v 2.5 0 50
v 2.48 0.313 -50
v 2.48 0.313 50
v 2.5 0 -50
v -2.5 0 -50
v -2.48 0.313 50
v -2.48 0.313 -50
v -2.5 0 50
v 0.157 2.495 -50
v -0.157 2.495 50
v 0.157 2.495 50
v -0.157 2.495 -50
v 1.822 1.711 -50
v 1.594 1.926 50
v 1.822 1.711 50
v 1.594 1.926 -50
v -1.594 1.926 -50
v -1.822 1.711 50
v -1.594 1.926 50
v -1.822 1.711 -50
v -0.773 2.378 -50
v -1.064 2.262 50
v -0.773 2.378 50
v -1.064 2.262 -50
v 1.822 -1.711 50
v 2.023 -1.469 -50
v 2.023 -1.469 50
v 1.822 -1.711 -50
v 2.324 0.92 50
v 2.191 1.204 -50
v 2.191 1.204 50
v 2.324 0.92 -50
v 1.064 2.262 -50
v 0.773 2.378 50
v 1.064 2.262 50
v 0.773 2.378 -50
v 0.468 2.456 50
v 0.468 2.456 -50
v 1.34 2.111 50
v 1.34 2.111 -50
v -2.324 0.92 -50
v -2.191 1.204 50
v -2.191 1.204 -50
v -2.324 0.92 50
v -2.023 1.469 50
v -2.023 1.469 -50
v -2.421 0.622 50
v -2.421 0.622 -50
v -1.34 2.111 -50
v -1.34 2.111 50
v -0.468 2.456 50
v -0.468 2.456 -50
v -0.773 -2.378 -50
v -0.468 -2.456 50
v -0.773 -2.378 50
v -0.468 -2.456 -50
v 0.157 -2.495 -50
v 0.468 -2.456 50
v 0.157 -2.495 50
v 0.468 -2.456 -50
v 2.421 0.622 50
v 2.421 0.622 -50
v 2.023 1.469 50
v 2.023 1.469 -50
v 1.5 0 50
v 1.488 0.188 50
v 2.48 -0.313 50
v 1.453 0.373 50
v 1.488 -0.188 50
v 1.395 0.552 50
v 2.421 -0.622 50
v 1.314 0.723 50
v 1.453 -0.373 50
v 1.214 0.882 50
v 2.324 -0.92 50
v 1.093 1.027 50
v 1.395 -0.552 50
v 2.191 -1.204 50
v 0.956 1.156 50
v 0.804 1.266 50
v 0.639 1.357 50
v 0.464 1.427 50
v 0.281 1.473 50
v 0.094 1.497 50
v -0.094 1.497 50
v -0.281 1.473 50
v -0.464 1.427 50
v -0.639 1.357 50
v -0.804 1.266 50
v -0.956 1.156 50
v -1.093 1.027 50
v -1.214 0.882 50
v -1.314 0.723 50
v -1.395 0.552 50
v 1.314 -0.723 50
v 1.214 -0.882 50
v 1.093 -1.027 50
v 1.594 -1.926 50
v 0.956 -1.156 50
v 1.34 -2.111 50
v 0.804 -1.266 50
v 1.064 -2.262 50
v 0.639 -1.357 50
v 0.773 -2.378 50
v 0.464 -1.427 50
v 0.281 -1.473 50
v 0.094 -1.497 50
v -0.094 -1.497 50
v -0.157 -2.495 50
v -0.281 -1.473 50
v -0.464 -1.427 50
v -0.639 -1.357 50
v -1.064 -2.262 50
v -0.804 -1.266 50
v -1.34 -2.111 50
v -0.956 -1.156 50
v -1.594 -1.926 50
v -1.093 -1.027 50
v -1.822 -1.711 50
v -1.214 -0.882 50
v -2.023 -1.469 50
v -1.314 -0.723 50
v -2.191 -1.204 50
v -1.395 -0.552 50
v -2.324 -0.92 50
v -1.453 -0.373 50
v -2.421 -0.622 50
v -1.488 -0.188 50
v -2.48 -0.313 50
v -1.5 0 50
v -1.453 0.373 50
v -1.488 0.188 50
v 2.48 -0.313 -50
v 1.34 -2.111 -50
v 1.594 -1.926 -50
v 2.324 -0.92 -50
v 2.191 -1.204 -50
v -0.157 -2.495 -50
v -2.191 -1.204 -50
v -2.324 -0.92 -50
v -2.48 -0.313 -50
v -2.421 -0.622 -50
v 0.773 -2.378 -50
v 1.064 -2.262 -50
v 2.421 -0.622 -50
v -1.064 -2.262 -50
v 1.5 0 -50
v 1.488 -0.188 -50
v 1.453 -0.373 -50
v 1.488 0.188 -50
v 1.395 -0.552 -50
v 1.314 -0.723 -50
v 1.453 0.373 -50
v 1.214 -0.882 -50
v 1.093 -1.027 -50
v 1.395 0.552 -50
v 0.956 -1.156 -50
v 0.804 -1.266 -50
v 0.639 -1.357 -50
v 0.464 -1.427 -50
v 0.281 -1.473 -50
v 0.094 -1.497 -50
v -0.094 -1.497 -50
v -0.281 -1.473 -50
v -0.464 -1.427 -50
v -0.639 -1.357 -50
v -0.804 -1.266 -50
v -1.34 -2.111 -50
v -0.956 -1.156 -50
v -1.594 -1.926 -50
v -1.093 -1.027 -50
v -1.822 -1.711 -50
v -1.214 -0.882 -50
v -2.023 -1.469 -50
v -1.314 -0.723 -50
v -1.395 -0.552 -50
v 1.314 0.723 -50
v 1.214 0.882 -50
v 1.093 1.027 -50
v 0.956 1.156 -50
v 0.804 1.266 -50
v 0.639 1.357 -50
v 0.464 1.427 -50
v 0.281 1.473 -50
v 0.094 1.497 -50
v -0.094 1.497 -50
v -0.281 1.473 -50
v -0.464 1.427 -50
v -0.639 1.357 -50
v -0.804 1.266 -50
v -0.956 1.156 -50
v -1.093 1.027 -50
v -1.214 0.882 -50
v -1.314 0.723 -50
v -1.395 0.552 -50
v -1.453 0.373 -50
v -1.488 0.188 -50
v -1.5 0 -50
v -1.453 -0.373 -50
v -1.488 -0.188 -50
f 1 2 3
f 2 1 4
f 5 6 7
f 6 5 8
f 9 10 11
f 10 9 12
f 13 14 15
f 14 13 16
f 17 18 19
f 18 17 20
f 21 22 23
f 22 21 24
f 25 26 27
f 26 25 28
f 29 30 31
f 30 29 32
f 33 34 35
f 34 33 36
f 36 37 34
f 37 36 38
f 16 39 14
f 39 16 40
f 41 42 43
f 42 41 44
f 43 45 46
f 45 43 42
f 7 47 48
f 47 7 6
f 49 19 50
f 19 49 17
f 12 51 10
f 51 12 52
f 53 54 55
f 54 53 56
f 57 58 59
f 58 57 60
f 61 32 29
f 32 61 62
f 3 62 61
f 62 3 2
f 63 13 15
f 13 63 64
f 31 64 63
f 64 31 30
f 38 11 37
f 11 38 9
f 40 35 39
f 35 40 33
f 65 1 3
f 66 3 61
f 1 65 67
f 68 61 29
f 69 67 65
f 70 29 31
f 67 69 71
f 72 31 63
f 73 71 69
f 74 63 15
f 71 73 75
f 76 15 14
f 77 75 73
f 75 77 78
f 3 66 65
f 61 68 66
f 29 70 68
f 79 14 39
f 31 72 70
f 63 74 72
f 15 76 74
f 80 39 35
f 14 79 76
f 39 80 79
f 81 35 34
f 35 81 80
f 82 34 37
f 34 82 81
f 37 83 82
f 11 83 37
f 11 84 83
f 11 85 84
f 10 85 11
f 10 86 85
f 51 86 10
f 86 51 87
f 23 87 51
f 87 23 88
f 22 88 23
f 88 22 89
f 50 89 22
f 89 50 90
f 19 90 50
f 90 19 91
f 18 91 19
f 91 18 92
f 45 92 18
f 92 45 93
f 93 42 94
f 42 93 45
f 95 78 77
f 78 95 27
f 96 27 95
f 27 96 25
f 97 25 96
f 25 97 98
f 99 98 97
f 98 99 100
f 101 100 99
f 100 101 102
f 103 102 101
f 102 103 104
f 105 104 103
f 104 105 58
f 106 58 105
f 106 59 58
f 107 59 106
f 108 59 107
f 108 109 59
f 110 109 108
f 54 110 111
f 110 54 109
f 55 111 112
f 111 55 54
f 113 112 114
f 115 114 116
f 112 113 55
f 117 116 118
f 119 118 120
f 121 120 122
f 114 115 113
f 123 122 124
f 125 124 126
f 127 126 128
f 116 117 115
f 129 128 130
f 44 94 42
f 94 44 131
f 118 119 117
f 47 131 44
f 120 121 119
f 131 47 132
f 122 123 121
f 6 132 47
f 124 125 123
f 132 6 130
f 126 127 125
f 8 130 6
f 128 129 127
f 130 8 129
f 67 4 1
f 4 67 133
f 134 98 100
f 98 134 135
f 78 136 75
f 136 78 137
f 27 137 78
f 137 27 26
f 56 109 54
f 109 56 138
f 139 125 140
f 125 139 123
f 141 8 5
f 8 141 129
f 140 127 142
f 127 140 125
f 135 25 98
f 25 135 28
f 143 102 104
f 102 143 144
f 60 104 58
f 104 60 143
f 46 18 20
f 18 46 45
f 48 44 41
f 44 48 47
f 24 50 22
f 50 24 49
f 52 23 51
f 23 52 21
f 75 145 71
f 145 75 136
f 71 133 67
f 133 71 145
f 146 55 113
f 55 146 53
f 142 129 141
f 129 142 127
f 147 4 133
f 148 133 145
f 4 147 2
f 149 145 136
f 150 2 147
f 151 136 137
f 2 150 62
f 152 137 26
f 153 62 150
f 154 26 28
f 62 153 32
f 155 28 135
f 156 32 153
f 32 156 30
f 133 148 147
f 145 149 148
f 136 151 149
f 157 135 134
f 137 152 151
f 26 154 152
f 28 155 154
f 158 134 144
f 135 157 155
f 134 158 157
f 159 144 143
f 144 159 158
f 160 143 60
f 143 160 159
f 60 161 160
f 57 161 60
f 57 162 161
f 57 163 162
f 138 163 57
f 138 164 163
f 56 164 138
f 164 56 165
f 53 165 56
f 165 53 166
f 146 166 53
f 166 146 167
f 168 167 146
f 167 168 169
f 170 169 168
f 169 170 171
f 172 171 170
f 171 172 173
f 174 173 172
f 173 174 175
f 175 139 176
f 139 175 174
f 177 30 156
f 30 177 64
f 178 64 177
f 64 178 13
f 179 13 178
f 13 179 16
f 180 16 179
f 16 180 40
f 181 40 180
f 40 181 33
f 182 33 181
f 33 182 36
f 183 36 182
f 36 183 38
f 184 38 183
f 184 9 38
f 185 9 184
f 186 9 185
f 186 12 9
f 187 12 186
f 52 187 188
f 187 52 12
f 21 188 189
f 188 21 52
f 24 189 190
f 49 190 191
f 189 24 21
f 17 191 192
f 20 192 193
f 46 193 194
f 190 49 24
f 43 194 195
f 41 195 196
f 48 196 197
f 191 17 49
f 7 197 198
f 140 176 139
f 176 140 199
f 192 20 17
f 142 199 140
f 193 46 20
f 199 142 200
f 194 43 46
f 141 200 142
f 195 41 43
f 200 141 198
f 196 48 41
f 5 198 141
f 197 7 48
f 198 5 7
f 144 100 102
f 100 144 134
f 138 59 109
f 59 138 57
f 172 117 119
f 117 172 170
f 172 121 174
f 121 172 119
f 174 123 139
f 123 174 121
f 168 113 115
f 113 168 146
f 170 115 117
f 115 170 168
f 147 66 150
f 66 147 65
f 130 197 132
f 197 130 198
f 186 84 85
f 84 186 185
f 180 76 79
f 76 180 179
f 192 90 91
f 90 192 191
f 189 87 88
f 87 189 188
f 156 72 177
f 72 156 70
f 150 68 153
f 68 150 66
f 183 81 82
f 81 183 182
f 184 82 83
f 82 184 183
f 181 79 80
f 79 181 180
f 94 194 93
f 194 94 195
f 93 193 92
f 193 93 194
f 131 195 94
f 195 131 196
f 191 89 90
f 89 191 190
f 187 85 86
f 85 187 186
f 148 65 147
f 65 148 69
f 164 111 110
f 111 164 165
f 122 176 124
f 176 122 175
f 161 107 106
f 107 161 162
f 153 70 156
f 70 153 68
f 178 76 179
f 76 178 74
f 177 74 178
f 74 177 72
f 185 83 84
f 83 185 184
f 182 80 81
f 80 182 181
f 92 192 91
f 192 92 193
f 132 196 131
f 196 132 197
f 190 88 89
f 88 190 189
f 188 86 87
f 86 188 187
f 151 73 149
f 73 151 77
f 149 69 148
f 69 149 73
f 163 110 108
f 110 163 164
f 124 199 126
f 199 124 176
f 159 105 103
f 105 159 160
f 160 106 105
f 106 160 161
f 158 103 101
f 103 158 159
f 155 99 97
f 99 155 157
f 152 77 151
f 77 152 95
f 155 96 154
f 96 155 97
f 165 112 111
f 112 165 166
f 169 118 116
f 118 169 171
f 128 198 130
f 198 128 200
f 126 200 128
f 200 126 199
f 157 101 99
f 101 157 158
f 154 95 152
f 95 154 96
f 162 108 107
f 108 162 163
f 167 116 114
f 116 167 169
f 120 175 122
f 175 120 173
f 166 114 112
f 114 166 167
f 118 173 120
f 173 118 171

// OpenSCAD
$fn = 50;


difference() {
	union() {
		translate(v = [0, 0, -50.0000000000]) {
			cylinder(h = 100, r = 2.5000000000);
		}
	}
	union() {
		translate(v = [0, 0, -100.0000000000]) {
			cylinder(h = 200, r = 1.5000000000);
		}
	}
}
